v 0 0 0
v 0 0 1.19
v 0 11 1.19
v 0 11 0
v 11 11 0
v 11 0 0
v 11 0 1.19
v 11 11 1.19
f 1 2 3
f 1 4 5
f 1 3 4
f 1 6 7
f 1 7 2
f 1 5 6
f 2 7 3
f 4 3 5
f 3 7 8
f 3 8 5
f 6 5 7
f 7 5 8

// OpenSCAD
/* Warning, this is a very basic generator with a lot of approximation 
input data : [TFBGA, 4LX, 11x11x1.19mm, 176, , A, C04-00481A]
generated by com.zoubworld.electronics.cad.model3d.Basic
Date : Sun Feb 15 10:50:48 CET 2026
*/

//body
color("black")
translate([0,0,0])
cube([11.0,11.0,1.19], center=false);
